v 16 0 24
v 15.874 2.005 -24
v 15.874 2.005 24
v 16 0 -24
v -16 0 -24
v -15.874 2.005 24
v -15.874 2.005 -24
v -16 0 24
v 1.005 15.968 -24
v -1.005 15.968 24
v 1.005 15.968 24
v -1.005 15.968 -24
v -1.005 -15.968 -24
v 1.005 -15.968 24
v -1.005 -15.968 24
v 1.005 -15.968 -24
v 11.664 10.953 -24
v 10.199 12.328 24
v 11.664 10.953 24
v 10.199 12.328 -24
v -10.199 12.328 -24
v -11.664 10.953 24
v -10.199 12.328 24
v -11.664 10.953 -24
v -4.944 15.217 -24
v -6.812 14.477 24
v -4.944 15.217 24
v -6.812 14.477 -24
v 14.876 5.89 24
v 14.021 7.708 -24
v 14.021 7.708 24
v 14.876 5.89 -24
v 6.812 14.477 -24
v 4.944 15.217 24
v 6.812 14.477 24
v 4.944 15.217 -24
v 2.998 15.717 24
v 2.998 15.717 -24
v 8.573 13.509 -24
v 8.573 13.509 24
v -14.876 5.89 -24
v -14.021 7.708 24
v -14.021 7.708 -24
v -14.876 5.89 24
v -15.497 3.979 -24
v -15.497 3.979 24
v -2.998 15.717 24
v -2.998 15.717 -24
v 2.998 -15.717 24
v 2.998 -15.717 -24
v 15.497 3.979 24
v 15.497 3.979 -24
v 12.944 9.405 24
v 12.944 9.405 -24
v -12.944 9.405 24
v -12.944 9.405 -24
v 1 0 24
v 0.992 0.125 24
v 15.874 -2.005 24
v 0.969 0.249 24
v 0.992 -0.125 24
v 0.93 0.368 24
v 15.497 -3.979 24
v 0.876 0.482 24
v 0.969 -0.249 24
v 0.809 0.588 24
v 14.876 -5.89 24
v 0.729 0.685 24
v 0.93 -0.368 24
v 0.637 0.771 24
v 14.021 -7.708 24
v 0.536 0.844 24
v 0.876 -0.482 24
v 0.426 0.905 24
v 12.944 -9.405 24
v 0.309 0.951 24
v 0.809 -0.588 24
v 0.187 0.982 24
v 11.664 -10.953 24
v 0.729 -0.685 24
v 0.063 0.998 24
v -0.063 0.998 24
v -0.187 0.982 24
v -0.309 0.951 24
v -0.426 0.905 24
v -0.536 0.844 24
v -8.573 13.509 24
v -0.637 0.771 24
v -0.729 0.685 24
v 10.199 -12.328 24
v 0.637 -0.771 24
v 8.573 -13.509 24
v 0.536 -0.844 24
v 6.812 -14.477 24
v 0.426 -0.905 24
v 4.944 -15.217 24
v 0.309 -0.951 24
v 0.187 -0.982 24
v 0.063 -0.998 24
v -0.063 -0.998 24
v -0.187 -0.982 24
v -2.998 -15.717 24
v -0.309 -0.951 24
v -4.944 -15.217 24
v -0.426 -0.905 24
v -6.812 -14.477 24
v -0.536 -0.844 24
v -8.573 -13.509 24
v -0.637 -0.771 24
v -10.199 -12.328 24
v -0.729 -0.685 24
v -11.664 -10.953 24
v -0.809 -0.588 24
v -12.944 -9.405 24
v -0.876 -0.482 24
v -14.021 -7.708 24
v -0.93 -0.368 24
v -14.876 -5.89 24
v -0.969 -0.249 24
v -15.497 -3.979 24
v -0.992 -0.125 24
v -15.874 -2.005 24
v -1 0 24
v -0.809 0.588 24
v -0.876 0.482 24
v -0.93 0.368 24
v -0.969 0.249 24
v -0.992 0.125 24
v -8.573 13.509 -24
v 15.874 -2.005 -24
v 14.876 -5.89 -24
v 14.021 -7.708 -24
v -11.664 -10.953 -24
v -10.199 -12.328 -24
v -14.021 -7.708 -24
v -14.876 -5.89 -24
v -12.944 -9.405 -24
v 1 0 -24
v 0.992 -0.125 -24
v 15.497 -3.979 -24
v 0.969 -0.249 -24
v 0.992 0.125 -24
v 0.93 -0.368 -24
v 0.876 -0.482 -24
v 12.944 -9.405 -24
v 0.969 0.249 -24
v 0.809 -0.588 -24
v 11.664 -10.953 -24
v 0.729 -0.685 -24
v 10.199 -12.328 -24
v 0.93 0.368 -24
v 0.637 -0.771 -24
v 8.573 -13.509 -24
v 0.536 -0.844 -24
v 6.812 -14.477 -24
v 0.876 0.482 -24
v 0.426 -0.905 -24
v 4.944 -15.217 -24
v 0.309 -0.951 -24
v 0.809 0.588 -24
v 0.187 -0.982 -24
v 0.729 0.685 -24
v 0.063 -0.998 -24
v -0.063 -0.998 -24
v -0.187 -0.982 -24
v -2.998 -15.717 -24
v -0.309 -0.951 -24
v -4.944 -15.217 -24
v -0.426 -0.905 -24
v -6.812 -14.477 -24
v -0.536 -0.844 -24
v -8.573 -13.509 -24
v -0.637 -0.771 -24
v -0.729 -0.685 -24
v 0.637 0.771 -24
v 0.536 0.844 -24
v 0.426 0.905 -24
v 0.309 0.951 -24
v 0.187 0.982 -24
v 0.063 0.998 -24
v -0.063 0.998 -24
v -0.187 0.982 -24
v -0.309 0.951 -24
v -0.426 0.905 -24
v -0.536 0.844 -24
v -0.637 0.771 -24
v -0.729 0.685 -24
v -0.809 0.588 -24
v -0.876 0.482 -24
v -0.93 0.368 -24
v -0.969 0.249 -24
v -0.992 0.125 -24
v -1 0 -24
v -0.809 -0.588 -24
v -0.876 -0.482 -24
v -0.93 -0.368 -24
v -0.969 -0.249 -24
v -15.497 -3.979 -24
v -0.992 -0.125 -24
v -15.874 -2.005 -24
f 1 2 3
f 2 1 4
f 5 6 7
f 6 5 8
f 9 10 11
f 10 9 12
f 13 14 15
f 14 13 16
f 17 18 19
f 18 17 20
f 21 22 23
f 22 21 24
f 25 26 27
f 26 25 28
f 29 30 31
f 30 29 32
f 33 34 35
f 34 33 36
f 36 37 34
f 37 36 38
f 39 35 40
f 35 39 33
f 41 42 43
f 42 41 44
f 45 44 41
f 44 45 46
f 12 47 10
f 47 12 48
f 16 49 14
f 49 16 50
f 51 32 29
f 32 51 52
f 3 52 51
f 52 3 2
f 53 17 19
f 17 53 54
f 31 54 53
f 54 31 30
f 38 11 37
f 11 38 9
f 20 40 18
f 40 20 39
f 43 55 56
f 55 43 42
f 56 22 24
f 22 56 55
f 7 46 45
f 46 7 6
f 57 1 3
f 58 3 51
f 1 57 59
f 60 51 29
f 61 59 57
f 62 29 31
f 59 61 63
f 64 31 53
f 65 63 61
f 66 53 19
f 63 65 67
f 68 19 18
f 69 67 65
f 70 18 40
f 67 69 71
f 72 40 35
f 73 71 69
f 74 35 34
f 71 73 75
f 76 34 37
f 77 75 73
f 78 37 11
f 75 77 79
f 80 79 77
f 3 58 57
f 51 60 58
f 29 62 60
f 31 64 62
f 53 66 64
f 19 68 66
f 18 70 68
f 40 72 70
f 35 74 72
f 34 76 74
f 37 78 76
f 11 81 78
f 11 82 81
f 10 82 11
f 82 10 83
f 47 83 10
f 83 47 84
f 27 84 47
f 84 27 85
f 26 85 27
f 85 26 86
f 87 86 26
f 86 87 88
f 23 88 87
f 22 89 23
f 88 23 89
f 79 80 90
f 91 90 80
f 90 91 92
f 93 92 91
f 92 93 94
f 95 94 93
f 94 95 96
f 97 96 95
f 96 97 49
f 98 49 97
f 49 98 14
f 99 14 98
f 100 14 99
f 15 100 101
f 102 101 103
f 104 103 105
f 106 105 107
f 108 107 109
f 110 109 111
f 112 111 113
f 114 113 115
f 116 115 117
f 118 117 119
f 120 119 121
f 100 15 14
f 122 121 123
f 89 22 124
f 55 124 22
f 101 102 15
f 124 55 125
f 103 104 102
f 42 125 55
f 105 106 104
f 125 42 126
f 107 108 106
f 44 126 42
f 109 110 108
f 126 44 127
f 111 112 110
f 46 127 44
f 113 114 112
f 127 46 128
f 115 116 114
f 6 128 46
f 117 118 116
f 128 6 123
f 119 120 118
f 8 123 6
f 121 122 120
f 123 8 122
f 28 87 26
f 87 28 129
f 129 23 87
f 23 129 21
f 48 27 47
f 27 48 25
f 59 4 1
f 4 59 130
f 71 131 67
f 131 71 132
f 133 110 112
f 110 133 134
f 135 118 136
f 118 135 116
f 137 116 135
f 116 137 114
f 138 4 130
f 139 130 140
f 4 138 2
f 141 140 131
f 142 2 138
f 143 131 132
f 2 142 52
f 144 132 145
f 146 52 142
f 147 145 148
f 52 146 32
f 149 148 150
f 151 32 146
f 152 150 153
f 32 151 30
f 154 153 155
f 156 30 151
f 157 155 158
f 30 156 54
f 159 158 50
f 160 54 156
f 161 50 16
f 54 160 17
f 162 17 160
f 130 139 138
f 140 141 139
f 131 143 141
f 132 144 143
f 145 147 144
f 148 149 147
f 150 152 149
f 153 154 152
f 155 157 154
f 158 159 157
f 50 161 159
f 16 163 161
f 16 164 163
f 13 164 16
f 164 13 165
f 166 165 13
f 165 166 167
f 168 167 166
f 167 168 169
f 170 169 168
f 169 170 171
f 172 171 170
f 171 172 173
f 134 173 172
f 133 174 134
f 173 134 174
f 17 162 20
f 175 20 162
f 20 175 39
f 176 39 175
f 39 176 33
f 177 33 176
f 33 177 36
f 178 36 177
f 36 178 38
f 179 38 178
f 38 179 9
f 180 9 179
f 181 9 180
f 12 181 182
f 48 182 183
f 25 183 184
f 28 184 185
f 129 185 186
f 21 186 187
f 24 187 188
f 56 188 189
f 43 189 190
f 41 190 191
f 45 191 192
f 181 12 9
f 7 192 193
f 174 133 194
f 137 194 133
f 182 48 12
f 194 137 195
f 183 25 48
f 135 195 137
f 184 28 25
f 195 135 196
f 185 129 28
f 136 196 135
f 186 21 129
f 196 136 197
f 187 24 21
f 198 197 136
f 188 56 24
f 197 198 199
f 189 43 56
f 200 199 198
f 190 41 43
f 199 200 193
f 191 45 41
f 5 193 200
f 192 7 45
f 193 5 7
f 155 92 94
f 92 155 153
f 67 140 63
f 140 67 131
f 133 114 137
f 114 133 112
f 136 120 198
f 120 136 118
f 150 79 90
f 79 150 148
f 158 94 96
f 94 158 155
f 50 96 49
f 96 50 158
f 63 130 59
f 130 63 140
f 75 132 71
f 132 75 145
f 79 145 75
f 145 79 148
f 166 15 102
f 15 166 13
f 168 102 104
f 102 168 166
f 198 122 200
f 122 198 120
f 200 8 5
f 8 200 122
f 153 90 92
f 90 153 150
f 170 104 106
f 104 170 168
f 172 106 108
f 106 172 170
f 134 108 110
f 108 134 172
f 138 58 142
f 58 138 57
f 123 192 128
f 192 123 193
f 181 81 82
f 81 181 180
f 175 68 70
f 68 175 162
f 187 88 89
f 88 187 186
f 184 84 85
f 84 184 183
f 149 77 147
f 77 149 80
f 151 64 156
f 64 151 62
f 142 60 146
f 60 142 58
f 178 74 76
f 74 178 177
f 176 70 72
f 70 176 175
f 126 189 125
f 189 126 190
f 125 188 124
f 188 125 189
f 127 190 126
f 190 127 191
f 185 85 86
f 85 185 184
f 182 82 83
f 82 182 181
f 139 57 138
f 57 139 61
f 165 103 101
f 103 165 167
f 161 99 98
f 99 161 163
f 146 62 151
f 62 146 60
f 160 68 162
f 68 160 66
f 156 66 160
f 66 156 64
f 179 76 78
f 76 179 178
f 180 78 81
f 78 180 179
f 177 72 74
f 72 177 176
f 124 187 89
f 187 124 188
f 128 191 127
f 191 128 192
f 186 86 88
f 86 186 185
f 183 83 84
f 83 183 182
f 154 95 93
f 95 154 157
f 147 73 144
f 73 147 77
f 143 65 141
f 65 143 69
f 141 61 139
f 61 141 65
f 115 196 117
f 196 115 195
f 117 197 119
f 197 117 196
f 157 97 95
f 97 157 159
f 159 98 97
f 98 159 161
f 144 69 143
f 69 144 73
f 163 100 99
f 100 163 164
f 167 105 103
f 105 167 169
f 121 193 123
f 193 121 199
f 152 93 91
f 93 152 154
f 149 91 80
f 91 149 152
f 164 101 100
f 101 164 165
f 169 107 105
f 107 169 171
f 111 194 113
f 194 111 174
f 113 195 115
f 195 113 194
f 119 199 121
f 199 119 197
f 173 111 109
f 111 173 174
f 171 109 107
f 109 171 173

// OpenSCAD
$fn = 50;


difference() {
	union() {
		translate(v = [0, 0, -24.0000000000]) {
			cylinder(h = 48, r = 16.0000000000);
		}
	}
	union() {
		translate(v = [0, 0, -100.0000000000]) {
			cylinder(h = 200, r = 1.0000000000);
		}
	}
}
